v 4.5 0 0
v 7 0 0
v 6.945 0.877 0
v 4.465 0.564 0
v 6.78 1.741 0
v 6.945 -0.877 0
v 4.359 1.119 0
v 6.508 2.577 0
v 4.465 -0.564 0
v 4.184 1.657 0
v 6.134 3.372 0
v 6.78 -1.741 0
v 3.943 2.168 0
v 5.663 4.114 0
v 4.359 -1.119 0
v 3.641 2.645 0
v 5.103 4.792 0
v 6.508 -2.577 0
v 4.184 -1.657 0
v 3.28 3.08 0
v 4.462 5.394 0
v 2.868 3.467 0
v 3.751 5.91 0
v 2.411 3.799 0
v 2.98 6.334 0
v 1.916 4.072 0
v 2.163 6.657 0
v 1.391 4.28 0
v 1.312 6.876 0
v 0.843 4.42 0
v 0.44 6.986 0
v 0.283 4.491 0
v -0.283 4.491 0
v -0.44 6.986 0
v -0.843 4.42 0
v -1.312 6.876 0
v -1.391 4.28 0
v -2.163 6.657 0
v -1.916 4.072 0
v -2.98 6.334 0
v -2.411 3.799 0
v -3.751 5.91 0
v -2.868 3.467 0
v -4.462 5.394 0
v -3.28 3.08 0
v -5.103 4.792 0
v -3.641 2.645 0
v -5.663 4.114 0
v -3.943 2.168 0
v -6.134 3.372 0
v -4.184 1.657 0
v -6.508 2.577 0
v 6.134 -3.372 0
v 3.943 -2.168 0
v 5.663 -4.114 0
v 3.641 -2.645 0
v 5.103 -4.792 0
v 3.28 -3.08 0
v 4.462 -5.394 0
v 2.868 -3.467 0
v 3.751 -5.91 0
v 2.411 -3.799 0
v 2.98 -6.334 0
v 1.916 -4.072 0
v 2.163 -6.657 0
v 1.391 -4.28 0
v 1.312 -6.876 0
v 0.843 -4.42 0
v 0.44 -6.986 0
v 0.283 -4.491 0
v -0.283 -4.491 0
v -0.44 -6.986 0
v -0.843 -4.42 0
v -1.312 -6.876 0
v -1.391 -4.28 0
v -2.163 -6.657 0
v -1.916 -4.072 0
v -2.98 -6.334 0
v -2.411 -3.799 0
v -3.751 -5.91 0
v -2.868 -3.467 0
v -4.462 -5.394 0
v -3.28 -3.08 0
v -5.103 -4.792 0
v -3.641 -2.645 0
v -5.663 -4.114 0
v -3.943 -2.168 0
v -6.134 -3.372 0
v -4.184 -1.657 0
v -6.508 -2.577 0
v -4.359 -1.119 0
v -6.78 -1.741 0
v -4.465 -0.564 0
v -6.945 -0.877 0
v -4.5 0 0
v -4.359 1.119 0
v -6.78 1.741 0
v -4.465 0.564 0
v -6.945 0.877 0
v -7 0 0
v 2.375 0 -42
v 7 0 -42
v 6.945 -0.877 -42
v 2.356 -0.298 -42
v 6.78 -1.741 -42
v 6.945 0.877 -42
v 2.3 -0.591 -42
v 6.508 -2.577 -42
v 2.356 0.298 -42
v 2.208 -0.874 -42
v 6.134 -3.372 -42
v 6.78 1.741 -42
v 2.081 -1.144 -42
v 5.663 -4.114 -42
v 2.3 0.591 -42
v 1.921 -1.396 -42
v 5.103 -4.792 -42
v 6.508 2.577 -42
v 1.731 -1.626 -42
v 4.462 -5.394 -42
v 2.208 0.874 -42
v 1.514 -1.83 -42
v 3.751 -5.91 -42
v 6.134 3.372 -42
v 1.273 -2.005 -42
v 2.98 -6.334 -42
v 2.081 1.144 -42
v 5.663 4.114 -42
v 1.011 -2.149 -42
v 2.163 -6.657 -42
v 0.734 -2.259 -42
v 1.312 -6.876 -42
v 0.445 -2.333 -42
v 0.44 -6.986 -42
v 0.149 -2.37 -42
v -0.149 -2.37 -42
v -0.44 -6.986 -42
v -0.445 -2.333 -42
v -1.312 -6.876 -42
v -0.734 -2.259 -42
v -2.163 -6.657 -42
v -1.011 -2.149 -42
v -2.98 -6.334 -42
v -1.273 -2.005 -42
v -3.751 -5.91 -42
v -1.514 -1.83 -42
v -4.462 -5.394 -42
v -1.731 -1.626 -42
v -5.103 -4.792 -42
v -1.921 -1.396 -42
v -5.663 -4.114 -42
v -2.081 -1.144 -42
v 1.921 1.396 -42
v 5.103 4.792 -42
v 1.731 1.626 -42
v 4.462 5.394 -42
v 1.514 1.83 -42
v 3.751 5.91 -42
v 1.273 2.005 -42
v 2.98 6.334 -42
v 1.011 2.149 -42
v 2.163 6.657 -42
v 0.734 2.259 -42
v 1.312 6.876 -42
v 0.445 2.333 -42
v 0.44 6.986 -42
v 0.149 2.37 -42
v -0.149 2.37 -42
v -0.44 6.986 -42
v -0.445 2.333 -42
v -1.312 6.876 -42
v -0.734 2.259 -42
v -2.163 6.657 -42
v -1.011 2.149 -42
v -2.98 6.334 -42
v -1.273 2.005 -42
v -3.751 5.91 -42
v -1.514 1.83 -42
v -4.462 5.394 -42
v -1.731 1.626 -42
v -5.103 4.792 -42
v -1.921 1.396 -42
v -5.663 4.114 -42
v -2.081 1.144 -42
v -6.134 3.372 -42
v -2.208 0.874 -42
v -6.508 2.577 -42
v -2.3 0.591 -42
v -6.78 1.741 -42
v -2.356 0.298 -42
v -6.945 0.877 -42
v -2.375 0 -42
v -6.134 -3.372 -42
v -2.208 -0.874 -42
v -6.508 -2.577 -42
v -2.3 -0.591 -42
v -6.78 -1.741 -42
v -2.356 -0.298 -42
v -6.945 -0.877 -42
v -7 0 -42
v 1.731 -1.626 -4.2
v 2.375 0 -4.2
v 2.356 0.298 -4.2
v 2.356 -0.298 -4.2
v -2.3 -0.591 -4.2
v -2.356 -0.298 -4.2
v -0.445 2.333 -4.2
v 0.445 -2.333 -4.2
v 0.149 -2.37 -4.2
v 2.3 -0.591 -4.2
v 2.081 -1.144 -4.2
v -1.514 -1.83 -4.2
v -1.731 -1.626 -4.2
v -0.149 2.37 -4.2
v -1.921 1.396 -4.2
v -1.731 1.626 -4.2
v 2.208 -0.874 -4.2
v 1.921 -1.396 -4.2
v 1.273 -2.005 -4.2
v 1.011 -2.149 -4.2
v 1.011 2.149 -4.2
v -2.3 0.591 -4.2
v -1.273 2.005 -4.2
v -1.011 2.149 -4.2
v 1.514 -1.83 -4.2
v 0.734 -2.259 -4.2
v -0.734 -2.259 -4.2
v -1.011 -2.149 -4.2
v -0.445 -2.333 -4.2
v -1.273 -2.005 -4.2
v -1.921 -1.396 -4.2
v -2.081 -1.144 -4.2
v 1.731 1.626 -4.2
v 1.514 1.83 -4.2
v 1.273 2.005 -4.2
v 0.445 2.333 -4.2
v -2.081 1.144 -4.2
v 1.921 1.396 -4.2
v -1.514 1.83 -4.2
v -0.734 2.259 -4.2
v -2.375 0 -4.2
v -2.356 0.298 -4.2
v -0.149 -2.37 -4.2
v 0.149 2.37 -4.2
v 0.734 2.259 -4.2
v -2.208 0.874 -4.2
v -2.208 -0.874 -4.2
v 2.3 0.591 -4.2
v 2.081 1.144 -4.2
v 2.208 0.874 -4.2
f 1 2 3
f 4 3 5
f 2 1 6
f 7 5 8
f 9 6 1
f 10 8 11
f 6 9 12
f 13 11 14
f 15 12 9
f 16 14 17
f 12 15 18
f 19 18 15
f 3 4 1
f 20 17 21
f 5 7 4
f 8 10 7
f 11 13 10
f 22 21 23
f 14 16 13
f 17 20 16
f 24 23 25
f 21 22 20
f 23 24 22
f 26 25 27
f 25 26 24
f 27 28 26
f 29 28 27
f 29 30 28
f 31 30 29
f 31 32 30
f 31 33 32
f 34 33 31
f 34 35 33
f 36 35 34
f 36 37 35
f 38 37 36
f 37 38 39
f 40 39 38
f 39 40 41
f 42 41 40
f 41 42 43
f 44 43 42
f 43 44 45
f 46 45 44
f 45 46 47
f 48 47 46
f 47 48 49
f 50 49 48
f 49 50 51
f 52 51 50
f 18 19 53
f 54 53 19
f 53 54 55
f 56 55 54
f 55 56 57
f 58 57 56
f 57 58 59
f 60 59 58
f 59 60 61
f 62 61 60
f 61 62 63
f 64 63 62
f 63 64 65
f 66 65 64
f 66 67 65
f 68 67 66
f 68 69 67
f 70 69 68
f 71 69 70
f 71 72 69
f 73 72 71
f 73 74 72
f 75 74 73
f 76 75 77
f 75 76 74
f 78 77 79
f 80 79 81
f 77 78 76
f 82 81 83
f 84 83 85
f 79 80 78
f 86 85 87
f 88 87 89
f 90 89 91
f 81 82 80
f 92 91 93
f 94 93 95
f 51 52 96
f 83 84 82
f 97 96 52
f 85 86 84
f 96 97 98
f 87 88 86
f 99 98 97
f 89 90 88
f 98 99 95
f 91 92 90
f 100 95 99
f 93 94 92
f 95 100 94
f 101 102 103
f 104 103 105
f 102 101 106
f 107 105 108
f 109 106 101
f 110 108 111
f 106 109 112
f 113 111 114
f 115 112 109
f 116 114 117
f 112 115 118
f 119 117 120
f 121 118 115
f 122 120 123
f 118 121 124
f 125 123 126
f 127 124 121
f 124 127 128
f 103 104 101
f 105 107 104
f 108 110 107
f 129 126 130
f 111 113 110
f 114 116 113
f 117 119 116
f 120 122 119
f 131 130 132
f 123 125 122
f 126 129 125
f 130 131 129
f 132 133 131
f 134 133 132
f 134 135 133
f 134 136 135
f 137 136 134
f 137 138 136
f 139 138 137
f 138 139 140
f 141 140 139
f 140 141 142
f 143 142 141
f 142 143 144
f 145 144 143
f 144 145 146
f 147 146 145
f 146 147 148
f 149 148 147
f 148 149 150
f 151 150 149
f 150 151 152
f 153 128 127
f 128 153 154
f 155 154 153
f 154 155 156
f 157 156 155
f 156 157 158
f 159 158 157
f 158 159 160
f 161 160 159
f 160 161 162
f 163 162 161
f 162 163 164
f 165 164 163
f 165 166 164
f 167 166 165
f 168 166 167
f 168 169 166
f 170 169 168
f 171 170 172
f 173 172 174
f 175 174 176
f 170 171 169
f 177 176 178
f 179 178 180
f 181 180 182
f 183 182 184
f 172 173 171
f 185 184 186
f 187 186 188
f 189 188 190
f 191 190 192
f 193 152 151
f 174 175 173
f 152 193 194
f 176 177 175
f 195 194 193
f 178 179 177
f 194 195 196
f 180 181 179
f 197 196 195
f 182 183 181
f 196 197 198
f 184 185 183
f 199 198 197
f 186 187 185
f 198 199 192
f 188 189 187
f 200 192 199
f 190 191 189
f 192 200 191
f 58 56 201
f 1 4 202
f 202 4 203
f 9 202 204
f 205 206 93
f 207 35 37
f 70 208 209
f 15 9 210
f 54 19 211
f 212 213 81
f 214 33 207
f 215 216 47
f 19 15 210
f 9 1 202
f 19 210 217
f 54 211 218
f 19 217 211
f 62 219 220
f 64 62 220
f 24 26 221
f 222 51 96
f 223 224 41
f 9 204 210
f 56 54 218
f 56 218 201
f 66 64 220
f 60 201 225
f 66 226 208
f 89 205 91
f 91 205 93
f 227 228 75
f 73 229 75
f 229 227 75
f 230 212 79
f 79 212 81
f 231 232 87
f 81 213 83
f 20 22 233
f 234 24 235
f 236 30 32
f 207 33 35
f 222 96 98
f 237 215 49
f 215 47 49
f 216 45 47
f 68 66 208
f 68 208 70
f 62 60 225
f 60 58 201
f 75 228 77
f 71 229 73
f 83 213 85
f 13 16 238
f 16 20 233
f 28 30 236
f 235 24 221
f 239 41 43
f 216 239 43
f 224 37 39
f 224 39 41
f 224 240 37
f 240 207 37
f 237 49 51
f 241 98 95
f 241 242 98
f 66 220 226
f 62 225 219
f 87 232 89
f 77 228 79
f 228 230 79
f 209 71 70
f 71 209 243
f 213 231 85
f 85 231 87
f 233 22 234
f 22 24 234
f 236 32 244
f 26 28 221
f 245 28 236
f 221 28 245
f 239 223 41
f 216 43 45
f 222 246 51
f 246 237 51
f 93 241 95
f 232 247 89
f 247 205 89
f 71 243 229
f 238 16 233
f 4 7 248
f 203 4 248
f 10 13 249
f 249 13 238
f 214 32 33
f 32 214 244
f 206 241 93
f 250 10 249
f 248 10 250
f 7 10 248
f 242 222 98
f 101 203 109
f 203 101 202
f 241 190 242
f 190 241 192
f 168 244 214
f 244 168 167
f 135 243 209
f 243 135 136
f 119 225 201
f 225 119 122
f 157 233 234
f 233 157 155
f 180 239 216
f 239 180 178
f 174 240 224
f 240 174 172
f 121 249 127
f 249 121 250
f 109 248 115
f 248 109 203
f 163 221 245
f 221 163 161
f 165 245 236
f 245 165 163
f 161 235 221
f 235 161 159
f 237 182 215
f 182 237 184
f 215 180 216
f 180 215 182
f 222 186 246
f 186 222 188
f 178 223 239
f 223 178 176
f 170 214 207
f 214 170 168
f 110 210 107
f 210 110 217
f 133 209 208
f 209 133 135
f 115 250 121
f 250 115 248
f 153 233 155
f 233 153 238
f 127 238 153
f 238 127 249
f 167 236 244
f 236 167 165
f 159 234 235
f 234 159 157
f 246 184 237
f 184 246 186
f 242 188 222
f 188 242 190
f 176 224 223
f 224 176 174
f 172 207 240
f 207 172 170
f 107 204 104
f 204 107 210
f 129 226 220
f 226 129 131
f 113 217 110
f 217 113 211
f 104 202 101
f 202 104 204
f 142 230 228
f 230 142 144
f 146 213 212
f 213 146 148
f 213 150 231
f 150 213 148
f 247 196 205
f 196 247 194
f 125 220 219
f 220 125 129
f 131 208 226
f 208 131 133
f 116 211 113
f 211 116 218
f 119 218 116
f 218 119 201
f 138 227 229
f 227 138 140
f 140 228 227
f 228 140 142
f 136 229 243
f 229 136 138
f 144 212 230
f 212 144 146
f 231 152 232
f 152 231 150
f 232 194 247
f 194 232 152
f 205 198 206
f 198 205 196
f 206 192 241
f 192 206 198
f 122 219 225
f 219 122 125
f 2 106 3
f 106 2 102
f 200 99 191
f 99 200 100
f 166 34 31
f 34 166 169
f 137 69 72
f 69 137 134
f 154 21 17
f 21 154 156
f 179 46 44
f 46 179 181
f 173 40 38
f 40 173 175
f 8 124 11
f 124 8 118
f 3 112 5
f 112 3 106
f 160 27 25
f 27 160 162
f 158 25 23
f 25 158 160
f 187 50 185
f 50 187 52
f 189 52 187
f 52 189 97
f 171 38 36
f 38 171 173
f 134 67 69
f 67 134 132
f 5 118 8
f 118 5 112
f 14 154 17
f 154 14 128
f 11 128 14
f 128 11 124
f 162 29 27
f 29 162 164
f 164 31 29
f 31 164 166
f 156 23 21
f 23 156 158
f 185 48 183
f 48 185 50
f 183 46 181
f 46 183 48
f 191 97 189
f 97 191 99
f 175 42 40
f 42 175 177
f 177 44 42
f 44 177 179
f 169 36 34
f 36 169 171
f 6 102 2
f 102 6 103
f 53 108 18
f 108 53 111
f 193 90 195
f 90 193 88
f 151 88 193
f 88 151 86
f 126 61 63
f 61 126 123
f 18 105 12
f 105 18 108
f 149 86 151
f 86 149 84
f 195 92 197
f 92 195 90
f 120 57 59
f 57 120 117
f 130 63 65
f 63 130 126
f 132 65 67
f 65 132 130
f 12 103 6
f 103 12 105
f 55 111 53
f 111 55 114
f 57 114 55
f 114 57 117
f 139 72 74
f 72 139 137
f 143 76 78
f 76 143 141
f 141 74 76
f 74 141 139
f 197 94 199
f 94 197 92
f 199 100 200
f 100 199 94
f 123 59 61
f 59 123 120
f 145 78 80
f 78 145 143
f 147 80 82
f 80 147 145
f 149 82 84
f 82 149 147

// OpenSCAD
$fn = 50;


difference() {
	union() {
		translate(v = [0, 0, -42.0000000000]) {
			cylinder(h = 42, r = 7.0000000000);
		}
		cylinder(h = 0, r = 10.0000000000);
	}
	union() {
		translate(v = [0, 0, 0]) {
			rotate(a = [0, 0, 0]) {
				difference() {
					union() {
						#translate(v = [0, 0, -42.0000000000]) {
							cylinder(h = 42, r = 2.2500000000);
						}
						#translate(v = [0, 0, -4.2000000000]) {
							cylinder(h = 4.2000000000, r = 7.0000000000, r1 = 2.3750000000, r2 = 4.5000000000);
						}
						#translate(v = [0, 0, -42.0000000000]) {
							cylinder(h = 42, r = 2.3750000000);
						}
						#translate(v = [0, 0, -42.0000000000]) {
							cylinder(h = 42, r = 2.2500000000);
						}
					}
					union();
				}
			}
		}
	}
}
